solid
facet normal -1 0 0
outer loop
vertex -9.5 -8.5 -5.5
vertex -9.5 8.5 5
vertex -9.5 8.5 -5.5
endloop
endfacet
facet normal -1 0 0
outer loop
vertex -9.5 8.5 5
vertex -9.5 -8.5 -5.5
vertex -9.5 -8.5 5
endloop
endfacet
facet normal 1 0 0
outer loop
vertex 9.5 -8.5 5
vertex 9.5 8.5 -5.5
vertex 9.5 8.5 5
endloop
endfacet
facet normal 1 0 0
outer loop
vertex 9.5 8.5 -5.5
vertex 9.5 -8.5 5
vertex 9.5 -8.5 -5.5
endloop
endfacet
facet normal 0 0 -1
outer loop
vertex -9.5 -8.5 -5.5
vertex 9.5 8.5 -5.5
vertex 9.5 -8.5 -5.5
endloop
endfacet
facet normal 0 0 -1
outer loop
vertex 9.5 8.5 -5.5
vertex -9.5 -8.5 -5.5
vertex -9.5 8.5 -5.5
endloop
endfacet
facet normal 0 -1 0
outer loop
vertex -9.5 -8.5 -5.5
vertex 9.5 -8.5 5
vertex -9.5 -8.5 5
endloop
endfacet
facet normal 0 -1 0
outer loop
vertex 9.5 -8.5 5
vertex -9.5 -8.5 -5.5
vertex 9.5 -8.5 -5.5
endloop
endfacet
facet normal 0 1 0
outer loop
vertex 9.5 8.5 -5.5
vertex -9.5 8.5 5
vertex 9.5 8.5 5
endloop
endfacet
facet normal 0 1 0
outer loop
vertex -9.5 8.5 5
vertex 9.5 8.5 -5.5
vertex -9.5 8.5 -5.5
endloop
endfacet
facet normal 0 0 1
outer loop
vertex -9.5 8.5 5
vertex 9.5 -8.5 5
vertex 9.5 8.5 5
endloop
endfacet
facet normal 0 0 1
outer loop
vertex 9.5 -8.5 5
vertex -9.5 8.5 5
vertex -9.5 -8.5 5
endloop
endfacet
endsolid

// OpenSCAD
// 19 mm long, 17 mm wide, 11 mm high rectangular solid box
// Centered at origin (0,0,0)

difference() {
    // Main solid box
    cube([19, 17, 11], center = true);
    
    // Optional: small chamfer on top edges for visual clarity
    // (comment out if not desired)
    translate([0, 0, 5.5])
        cube([19.2, 17.2, 1], center = true);
}
